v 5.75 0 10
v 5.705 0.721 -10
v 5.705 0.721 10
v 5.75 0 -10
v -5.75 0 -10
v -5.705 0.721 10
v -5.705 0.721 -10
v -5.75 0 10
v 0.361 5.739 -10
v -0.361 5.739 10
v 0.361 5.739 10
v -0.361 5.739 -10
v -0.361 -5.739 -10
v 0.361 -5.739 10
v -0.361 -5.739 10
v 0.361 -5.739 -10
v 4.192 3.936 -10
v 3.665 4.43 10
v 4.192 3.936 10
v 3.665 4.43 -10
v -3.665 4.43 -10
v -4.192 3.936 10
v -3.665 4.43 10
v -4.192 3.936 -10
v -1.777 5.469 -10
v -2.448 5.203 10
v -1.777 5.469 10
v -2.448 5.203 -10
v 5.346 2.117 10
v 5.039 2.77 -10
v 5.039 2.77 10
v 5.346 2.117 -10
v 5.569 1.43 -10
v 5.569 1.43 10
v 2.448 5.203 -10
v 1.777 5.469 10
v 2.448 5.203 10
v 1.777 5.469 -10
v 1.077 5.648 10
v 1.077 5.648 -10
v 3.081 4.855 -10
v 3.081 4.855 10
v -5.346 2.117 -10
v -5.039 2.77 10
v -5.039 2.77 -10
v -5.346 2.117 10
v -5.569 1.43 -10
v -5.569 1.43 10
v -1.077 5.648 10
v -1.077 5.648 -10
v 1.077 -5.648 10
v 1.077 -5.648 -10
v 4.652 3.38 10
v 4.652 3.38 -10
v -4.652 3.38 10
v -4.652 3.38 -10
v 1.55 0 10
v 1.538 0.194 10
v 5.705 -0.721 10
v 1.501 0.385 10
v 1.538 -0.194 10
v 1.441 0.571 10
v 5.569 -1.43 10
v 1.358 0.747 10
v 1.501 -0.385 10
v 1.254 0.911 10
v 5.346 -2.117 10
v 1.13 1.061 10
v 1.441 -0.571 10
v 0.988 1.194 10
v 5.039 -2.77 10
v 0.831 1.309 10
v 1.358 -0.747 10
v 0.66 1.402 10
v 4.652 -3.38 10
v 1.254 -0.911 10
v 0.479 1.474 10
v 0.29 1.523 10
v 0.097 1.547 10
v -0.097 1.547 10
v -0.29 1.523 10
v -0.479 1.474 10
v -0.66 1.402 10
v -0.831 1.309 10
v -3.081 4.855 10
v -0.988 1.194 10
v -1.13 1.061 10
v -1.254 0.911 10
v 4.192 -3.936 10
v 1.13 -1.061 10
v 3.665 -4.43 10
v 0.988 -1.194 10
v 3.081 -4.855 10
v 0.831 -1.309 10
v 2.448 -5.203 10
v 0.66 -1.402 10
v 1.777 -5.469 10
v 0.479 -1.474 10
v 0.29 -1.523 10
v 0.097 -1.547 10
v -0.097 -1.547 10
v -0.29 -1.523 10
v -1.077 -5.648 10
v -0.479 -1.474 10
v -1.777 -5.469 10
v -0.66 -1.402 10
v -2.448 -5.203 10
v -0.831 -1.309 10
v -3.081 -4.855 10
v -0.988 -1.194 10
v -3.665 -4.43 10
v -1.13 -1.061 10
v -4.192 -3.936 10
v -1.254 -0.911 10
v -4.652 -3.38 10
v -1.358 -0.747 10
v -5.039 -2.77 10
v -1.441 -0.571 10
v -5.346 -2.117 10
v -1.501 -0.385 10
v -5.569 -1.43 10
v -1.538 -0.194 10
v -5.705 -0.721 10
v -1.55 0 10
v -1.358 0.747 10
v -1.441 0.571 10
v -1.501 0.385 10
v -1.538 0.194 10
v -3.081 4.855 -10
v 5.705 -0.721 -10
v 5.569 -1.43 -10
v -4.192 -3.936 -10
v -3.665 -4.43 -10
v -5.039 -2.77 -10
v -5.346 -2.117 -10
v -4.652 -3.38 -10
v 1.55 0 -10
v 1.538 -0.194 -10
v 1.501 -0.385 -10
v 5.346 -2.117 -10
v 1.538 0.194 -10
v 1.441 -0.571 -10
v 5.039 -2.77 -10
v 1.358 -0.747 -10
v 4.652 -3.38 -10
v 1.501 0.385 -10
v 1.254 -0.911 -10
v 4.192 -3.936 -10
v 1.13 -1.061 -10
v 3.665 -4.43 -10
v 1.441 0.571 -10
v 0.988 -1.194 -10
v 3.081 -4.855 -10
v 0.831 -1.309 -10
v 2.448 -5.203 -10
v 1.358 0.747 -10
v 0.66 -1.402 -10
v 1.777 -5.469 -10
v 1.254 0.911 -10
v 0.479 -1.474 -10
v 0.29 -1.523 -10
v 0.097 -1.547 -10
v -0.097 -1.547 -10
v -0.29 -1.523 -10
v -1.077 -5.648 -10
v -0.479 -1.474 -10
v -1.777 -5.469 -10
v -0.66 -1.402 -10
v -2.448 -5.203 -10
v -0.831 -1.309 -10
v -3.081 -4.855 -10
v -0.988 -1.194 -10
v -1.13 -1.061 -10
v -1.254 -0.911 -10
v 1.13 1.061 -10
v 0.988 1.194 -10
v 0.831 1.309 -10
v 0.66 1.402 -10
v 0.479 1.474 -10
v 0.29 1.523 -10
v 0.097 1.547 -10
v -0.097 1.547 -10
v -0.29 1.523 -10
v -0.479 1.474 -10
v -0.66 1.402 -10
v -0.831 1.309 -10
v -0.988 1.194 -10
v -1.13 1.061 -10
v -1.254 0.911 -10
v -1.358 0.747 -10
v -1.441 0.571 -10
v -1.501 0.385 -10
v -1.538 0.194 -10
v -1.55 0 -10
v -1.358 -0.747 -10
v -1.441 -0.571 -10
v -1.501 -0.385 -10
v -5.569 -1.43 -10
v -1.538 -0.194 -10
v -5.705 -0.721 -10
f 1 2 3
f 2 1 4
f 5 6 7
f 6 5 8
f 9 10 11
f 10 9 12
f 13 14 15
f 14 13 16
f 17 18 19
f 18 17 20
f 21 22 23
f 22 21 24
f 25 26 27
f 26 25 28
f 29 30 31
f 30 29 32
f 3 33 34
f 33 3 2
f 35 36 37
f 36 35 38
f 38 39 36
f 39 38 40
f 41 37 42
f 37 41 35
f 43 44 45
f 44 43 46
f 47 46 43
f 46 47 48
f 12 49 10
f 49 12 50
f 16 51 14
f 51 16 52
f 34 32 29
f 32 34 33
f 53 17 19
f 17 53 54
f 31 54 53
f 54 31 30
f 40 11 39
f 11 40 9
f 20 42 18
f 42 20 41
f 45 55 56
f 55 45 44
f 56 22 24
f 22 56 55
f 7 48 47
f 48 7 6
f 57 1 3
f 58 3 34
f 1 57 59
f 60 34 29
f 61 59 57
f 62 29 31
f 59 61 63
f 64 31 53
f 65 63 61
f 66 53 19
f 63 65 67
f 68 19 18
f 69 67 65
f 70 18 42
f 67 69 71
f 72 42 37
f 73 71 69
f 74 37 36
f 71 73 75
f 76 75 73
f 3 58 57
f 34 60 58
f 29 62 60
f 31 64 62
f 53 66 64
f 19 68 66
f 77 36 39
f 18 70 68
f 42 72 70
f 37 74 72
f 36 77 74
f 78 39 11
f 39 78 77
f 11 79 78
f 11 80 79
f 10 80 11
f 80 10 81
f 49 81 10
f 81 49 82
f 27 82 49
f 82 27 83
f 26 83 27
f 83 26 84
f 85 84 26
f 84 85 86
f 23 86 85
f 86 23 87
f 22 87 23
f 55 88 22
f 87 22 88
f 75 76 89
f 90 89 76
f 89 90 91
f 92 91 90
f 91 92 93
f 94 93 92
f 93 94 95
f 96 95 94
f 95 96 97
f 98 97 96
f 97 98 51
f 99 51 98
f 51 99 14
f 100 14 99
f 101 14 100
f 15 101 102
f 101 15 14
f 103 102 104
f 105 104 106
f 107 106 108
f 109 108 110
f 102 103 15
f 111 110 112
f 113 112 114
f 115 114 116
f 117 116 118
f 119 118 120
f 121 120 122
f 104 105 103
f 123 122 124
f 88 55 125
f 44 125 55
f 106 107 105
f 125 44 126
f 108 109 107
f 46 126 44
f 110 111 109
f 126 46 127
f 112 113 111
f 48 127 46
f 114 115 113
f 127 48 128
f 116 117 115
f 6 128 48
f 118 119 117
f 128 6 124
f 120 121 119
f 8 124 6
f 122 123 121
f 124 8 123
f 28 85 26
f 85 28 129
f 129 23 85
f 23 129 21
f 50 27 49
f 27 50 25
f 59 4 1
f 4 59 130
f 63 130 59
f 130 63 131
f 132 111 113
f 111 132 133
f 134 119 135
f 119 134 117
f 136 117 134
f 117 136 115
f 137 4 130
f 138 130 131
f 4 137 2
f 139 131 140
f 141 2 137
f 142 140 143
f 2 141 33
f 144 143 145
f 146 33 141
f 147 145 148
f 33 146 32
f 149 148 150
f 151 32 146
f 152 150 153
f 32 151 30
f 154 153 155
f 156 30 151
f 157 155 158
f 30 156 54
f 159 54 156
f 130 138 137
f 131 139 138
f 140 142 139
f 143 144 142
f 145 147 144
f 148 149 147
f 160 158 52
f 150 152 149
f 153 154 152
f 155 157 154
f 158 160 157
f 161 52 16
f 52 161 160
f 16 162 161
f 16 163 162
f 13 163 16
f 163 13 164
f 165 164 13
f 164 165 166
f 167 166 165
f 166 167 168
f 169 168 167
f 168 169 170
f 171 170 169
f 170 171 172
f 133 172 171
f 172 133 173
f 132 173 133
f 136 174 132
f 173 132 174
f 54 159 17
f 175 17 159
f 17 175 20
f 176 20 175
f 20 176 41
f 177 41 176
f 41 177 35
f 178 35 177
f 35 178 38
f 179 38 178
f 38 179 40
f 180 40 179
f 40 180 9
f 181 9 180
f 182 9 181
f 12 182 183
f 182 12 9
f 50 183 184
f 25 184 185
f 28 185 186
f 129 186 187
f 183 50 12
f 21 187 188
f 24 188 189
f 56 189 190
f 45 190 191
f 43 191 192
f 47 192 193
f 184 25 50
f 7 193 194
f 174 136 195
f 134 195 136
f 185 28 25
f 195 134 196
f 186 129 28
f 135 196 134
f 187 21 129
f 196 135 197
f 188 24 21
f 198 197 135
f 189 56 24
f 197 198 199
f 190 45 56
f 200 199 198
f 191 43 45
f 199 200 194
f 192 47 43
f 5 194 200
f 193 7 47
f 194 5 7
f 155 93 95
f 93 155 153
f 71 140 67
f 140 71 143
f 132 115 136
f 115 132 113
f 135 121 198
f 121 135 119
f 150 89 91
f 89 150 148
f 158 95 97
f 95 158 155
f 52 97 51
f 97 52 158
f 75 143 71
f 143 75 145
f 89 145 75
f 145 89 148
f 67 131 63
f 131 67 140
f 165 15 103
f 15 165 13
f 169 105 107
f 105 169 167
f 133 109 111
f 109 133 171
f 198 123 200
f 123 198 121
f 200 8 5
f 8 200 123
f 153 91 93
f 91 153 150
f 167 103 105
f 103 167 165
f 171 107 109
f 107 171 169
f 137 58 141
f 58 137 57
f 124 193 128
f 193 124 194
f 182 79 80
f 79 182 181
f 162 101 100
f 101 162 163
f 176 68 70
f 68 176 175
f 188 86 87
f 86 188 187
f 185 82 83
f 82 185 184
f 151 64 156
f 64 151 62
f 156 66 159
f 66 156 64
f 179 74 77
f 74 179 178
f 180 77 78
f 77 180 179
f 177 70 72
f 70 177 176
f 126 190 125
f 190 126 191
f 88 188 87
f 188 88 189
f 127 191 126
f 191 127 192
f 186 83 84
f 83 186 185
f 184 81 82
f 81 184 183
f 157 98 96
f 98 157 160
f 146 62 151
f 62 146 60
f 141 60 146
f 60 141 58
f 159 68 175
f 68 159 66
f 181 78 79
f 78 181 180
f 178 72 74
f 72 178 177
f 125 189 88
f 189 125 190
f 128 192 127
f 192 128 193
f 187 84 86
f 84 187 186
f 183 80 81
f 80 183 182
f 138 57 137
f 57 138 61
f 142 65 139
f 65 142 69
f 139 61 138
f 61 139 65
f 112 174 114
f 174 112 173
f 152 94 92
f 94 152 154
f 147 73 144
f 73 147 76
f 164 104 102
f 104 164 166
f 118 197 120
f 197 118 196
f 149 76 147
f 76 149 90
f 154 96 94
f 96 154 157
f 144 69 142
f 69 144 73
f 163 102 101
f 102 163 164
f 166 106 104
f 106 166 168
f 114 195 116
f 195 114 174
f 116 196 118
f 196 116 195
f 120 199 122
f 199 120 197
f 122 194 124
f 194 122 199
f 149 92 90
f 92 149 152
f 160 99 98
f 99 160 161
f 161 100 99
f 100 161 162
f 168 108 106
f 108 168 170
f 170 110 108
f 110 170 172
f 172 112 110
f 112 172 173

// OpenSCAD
$fn = 50;


difference() {
	union() {
		translate(v = [0, 0, -10.0000000000]) {
			cylinder(h = 20, r = 5.7500000000);
		}
	}
	union() {
		translate(v = [0, 0, -100.0000000000]) {
			cylinder(h = 200, r = 1.5500000000);
		}
	}
}
